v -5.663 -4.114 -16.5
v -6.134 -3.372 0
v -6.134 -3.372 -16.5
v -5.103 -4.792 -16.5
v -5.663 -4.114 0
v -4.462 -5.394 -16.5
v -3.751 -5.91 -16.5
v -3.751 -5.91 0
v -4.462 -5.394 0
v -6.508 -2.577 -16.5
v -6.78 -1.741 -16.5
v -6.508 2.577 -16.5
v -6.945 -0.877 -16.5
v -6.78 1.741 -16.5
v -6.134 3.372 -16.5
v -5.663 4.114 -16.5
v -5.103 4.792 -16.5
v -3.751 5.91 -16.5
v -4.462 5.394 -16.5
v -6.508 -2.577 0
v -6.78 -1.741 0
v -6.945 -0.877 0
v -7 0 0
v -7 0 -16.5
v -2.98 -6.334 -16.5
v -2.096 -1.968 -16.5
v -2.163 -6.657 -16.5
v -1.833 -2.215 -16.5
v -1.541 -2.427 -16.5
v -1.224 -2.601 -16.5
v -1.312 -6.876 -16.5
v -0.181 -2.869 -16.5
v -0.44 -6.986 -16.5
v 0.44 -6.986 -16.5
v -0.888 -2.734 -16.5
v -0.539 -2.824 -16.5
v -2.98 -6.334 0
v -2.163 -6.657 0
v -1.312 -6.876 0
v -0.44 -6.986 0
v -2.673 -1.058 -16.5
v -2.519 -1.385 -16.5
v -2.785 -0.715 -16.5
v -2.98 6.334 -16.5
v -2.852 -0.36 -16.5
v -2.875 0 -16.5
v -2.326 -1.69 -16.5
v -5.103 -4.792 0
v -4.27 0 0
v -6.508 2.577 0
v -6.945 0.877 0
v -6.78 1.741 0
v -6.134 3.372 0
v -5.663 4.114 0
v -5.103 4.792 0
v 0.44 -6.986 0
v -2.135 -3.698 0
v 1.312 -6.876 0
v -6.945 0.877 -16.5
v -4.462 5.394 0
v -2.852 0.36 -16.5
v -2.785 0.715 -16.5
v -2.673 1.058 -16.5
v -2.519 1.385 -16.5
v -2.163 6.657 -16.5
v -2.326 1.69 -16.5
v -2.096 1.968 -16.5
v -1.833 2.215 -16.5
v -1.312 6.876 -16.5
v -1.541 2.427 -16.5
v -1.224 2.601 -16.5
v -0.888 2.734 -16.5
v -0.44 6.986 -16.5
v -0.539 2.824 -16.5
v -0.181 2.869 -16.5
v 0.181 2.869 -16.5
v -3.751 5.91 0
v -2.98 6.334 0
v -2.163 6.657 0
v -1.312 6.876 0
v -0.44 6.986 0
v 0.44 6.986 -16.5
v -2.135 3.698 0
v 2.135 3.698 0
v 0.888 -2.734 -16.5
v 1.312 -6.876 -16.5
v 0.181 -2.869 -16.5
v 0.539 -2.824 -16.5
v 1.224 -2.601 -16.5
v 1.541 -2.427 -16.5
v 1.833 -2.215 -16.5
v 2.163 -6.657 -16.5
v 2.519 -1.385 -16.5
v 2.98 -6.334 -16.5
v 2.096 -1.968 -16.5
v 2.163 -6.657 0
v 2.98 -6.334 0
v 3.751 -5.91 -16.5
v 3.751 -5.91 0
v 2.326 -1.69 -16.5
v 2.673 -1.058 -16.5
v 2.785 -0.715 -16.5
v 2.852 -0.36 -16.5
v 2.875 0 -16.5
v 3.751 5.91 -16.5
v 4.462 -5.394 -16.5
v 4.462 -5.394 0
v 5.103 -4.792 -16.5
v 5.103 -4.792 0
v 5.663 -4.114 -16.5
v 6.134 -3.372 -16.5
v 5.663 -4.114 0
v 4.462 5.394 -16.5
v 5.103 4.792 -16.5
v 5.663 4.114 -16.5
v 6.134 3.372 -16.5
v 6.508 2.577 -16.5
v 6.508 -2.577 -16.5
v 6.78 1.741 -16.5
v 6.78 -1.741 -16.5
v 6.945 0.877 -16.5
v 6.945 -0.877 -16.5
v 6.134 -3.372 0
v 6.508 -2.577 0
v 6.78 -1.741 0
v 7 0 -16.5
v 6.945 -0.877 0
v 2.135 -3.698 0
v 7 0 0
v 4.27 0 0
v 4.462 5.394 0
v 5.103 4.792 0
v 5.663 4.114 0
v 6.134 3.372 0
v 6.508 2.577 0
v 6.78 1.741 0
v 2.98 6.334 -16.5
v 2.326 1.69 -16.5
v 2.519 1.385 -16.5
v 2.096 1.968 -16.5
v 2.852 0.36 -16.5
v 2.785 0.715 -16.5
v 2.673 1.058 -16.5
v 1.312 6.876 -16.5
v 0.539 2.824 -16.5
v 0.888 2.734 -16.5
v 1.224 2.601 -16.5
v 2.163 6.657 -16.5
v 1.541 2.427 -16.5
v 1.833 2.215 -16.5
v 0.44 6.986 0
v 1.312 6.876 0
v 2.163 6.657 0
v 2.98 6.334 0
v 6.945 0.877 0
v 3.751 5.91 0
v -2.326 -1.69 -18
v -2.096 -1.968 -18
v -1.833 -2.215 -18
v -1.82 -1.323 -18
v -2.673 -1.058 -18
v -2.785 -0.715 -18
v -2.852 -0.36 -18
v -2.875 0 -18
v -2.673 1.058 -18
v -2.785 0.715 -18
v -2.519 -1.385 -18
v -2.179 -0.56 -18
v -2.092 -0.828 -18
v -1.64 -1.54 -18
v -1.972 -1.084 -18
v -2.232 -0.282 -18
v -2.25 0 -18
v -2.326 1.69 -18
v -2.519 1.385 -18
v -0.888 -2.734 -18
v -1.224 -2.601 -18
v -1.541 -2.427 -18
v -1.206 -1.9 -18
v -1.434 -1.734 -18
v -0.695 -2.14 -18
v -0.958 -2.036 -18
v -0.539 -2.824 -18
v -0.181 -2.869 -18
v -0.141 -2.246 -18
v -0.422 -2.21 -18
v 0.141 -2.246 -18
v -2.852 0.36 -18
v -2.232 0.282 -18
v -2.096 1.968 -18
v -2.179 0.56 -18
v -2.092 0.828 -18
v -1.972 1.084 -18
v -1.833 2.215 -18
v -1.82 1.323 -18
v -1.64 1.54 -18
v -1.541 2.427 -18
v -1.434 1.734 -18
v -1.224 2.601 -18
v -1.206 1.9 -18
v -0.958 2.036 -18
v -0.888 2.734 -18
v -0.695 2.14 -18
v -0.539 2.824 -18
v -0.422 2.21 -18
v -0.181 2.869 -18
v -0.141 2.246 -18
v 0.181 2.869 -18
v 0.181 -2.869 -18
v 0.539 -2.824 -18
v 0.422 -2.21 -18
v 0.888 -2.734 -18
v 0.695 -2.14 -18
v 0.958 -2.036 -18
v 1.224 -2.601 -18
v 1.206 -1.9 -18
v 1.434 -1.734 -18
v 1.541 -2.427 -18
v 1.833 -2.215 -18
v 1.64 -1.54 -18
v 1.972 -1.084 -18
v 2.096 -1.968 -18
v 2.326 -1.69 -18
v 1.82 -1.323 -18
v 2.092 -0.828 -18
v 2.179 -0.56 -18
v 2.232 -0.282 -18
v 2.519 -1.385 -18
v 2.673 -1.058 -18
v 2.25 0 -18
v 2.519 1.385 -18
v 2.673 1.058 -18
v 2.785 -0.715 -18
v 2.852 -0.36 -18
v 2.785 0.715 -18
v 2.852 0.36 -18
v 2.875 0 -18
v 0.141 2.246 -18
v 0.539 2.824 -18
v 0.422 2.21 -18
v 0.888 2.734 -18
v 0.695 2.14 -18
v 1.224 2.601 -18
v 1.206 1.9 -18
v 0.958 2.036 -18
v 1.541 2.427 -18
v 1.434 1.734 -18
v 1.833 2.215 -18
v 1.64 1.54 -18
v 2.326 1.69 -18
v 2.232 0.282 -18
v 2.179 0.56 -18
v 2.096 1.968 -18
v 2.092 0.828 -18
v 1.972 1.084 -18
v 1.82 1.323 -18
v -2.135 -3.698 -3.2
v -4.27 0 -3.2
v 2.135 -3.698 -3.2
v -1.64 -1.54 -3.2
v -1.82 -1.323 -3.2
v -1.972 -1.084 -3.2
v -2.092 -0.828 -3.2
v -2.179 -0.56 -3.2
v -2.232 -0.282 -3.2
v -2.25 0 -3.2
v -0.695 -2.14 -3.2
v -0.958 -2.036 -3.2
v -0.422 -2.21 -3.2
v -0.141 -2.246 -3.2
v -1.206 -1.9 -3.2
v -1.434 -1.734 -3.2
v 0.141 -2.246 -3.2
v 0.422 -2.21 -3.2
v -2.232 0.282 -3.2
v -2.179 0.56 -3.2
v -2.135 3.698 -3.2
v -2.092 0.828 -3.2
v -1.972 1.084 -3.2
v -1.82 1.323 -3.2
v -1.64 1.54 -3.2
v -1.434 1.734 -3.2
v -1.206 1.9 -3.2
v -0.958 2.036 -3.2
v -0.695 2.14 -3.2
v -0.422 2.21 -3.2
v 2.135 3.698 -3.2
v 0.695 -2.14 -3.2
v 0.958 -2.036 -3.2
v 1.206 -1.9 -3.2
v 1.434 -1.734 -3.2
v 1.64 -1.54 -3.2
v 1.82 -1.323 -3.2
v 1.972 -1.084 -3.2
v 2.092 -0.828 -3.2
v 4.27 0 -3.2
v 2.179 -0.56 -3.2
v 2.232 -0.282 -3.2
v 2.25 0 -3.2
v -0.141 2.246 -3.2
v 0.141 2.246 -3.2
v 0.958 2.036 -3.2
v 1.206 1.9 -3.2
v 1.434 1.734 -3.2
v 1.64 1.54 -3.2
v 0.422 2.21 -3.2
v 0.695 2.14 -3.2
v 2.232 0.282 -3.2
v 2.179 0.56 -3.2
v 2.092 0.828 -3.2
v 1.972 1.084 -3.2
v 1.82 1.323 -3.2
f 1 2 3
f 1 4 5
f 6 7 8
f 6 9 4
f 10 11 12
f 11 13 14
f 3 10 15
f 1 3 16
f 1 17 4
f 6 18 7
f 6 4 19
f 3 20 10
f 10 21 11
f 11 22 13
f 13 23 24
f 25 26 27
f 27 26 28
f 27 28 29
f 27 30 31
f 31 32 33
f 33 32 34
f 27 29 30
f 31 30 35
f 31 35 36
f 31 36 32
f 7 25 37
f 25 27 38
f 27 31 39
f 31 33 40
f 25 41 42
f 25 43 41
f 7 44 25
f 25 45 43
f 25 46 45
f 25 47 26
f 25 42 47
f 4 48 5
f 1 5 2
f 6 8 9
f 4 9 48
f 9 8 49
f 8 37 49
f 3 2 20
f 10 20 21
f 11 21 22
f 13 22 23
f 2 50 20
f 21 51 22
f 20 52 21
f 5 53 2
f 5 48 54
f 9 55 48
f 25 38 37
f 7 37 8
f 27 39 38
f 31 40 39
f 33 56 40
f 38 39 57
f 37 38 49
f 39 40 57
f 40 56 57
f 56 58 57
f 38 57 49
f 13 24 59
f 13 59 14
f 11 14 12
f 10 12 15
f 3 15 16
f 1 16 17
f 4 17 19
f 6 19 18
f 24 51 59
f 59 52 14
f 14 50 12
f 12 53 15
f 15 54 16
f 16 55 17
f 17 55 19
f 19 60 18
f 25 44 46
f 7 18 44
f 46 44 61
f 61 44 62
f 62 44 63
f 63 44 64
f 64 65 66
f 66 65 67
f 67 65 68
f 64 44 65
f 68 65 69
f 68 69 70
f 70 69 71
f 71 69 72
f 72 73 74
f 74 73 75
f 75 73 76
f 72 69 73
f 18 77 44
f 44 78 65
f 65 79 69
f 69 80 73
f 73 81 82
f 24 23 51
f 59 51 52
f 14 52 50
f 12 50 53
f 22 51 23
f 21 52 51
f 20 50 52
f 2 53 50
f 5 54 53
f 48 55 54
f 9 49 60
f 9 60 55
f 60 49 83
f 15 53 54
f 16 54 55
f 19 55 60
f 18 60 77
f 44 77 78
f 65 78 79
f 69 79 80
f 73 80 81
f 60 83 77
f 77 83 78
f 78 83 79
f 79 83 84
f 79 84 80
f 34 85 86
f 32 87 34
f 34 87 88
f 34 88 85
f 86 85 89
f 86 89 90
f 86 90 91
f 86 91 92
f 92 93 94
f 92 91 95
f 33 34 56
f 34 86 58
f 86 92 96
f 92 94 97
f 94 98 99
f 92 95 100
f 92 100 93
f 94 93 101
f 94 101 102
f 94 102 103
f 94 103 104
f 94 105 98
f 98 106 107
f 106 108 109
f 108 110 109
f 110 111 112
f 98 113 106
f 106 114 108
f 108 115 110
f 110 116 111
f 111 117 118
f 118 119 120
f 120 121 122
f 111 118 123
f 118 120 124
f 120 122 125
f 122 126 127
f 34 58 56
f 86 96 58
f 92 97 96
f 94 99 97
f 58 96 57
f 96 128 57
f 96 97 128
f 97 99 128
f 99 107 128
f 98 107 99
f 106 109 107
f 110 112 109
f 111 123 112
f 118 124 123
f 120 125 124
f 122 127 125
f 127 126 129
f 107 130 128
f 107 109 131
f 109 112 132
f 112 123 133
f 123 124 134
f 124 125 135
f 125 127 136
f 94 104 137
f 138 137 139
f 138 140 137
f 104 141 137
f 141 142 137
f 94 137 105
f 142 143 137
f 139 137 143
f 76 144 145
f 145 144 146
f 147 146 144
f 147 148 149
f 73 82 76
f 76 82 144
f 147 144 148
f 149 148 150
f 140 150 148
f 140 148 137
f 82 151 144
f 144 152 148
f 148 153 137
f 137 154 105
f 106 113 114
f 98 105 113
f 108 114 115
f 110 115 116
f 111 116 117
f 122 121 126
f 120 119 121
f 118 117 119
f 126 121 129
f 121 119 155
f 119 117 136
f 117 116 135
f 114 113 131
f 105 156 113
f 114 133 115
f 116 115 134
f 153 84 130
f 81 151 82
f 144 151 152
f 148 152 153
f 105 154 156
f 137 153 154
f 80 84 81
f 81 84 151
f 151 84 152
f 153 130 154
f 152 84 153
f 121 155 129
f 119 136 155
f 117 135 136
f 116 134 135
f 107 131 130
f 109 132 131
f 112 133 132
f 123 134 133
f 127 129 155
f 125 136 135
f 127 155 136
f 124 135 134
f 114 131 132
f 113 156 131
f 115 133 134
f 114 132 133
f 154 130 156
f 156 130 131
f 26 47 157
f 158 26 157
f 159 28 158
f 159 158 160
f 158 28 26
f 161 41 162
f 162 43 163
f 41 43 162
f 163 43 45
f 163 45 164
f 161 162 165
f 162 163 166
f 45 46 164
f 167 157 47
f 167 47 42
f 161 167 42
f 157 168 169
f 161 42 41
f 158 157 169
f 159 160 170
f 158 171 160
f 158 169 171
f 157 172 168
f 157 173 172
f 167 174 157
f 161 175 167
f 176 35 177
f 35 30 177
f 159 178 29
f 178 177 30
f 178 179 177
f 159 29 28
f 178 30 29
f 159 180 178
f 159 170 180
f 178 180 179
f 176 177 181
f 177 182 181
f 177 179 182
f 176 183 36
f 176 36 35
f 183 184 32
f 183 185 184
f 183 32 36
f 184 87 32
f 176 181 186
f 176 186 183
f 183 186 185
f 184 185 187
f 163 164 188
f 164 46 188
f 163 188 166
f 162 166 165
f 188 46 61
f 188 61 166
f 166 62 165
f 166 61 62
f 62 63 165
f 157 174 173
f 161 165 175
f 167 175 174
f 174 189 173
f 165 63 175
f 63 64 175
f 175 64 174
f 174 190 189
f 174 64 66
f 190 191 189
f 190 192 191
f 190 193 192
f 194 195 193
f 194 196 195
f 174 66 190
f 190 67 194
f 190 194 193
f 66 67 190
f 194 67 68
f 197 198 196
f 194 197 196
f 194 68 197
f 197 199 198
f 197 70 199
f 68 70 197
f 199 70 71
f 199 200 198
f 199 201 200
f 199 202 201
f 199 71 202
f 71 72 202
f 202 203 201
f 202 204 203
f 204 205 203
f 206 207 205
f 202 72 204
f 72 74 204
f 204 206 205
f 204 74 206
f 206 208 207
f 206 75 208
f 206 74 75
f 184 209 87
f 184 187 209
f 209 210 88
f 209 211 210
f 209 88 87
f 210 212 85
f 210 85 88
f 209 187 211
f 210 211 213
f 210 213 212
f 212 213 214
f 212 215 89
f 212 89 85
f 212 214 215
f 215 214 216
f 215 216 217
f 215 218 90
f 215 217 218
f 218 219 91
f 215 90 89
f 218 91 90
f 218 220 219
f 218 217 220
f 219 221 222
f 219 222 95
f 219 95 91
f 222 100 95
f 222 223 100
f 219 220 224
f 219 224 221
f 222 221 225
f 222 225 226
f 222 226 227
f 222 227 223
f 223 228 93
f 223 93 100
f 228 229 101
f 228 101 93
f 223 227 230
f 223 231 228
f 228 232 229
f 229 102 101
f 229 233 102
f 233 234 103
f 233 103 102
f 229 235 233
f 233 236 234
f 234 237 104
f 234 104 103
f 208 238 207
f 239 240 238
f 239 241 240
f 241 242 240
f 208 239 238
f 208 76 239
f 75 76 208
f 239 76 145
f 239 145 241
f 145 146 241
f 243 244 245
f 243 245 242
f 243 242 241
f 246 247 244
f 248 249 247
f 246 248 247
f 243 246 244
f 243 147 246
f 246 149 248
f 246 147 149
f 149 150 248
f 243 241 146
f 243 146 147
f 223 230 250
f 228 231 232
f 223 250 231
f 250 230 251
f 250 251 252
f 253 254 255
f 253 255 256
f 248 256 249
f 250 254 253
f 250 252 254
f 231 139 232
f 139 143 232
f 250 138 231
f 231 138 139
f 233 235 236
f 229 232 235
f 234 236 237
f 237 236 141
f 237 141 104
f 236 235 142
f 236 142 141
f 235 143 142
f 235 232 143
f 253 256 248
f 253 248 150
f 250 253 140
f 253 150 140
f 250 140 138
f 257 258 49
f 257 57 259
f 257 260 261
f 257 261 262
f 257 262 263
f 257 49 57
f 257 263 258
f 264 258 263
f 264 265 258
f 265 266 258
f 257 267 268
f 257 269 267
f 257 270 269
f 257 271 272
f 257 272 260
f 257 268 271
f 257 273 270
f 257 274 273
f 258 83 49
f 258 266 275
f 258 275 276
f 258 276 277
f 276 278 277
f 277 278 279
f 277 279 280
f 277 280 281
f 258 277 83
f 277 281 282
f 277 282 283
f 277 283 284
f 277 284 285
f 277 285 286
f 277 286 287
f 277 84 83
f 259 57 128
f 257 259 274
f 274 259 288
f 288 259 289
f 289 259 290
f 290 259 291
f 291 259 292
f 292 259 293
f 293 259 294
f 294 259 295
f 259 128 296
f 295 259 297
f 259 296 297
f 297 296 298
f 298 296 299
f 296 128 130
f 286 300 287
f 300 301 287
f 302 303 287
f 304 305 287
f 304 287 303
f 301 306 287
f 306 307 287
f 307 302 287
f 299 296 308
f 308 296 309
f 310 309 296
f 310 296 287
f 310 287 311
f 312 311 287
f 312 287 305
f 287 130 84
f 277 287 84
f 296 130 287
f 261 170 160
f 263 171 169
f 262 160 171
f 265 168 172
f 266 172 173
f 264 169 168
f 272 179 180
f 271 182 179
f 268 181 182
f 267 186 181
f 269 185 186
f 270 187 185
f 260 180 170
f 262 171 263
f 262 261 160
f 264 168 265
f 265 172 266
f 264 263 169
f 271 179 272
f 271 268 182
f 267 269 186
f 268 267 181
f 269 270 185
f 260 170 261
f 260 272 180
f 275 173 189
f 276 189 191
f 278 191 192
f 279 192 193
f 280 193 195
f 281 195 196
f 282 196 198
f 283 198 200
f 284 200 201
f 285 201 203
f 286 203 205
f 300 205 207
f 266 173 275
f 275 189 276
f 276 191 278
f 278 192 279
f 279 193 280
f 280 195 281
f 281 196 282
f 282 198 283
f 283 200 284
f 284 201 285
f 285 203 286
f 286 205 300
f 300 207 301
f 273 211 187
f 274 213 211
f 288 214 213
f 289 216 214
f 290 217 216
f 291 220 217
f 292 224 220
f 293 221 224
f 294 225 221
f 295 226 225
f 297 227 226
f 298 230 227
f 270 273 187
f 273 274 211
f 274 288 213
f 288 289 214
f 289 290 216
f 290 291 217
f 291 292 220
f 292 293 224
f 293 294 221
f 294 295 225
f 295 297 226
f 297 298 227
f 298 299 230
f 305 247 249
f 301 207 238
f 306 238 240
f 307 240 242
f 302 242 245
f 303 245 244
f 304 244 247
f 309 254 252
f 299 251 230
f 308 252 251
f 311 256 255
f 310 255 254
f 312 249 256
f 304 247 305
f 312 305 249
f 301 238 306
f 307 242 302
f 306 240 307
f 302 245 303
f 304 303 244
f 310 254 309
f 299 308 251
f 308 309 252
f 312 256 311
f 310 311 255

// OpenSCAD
$fn = 50;


difference() {
	union() {
		translate(v = [0, 0, -16.5000000000]) {
			cylinder(h = 16.5000000000, r = 7.0000000000);
		}
		#translate(v = [0, 0, -18.0000000000]) {
			cylinder(h = 18, r = 2.8750000000);
		}
	}
	union() {
		translate(v = [0, 0, 0]) {
			rotate(a = [0, 0, 0]) {
				difference() {
					union() {
						translate(v = [0, 0, -3.2000000000]) {
							linear_extrude(height = 3.2000000000) {
								polygon(points = [[4.2698000000, 0.0000000000], [2.1349000000, 3.6977552691], [-2.1349000000, 3.6977552691], [-4.2698000000, 0.0000000000], [-2.1349000000, -3.6977552691], [2.1349000000, -3.6977552691]]);
							}
						}
					}
					union();
				}
			}
		}
		#translate(v = [0, 0, -100.0000000000]) {
			cylinder(h = 200, r = 2.2500000000);
		}
	}
}
